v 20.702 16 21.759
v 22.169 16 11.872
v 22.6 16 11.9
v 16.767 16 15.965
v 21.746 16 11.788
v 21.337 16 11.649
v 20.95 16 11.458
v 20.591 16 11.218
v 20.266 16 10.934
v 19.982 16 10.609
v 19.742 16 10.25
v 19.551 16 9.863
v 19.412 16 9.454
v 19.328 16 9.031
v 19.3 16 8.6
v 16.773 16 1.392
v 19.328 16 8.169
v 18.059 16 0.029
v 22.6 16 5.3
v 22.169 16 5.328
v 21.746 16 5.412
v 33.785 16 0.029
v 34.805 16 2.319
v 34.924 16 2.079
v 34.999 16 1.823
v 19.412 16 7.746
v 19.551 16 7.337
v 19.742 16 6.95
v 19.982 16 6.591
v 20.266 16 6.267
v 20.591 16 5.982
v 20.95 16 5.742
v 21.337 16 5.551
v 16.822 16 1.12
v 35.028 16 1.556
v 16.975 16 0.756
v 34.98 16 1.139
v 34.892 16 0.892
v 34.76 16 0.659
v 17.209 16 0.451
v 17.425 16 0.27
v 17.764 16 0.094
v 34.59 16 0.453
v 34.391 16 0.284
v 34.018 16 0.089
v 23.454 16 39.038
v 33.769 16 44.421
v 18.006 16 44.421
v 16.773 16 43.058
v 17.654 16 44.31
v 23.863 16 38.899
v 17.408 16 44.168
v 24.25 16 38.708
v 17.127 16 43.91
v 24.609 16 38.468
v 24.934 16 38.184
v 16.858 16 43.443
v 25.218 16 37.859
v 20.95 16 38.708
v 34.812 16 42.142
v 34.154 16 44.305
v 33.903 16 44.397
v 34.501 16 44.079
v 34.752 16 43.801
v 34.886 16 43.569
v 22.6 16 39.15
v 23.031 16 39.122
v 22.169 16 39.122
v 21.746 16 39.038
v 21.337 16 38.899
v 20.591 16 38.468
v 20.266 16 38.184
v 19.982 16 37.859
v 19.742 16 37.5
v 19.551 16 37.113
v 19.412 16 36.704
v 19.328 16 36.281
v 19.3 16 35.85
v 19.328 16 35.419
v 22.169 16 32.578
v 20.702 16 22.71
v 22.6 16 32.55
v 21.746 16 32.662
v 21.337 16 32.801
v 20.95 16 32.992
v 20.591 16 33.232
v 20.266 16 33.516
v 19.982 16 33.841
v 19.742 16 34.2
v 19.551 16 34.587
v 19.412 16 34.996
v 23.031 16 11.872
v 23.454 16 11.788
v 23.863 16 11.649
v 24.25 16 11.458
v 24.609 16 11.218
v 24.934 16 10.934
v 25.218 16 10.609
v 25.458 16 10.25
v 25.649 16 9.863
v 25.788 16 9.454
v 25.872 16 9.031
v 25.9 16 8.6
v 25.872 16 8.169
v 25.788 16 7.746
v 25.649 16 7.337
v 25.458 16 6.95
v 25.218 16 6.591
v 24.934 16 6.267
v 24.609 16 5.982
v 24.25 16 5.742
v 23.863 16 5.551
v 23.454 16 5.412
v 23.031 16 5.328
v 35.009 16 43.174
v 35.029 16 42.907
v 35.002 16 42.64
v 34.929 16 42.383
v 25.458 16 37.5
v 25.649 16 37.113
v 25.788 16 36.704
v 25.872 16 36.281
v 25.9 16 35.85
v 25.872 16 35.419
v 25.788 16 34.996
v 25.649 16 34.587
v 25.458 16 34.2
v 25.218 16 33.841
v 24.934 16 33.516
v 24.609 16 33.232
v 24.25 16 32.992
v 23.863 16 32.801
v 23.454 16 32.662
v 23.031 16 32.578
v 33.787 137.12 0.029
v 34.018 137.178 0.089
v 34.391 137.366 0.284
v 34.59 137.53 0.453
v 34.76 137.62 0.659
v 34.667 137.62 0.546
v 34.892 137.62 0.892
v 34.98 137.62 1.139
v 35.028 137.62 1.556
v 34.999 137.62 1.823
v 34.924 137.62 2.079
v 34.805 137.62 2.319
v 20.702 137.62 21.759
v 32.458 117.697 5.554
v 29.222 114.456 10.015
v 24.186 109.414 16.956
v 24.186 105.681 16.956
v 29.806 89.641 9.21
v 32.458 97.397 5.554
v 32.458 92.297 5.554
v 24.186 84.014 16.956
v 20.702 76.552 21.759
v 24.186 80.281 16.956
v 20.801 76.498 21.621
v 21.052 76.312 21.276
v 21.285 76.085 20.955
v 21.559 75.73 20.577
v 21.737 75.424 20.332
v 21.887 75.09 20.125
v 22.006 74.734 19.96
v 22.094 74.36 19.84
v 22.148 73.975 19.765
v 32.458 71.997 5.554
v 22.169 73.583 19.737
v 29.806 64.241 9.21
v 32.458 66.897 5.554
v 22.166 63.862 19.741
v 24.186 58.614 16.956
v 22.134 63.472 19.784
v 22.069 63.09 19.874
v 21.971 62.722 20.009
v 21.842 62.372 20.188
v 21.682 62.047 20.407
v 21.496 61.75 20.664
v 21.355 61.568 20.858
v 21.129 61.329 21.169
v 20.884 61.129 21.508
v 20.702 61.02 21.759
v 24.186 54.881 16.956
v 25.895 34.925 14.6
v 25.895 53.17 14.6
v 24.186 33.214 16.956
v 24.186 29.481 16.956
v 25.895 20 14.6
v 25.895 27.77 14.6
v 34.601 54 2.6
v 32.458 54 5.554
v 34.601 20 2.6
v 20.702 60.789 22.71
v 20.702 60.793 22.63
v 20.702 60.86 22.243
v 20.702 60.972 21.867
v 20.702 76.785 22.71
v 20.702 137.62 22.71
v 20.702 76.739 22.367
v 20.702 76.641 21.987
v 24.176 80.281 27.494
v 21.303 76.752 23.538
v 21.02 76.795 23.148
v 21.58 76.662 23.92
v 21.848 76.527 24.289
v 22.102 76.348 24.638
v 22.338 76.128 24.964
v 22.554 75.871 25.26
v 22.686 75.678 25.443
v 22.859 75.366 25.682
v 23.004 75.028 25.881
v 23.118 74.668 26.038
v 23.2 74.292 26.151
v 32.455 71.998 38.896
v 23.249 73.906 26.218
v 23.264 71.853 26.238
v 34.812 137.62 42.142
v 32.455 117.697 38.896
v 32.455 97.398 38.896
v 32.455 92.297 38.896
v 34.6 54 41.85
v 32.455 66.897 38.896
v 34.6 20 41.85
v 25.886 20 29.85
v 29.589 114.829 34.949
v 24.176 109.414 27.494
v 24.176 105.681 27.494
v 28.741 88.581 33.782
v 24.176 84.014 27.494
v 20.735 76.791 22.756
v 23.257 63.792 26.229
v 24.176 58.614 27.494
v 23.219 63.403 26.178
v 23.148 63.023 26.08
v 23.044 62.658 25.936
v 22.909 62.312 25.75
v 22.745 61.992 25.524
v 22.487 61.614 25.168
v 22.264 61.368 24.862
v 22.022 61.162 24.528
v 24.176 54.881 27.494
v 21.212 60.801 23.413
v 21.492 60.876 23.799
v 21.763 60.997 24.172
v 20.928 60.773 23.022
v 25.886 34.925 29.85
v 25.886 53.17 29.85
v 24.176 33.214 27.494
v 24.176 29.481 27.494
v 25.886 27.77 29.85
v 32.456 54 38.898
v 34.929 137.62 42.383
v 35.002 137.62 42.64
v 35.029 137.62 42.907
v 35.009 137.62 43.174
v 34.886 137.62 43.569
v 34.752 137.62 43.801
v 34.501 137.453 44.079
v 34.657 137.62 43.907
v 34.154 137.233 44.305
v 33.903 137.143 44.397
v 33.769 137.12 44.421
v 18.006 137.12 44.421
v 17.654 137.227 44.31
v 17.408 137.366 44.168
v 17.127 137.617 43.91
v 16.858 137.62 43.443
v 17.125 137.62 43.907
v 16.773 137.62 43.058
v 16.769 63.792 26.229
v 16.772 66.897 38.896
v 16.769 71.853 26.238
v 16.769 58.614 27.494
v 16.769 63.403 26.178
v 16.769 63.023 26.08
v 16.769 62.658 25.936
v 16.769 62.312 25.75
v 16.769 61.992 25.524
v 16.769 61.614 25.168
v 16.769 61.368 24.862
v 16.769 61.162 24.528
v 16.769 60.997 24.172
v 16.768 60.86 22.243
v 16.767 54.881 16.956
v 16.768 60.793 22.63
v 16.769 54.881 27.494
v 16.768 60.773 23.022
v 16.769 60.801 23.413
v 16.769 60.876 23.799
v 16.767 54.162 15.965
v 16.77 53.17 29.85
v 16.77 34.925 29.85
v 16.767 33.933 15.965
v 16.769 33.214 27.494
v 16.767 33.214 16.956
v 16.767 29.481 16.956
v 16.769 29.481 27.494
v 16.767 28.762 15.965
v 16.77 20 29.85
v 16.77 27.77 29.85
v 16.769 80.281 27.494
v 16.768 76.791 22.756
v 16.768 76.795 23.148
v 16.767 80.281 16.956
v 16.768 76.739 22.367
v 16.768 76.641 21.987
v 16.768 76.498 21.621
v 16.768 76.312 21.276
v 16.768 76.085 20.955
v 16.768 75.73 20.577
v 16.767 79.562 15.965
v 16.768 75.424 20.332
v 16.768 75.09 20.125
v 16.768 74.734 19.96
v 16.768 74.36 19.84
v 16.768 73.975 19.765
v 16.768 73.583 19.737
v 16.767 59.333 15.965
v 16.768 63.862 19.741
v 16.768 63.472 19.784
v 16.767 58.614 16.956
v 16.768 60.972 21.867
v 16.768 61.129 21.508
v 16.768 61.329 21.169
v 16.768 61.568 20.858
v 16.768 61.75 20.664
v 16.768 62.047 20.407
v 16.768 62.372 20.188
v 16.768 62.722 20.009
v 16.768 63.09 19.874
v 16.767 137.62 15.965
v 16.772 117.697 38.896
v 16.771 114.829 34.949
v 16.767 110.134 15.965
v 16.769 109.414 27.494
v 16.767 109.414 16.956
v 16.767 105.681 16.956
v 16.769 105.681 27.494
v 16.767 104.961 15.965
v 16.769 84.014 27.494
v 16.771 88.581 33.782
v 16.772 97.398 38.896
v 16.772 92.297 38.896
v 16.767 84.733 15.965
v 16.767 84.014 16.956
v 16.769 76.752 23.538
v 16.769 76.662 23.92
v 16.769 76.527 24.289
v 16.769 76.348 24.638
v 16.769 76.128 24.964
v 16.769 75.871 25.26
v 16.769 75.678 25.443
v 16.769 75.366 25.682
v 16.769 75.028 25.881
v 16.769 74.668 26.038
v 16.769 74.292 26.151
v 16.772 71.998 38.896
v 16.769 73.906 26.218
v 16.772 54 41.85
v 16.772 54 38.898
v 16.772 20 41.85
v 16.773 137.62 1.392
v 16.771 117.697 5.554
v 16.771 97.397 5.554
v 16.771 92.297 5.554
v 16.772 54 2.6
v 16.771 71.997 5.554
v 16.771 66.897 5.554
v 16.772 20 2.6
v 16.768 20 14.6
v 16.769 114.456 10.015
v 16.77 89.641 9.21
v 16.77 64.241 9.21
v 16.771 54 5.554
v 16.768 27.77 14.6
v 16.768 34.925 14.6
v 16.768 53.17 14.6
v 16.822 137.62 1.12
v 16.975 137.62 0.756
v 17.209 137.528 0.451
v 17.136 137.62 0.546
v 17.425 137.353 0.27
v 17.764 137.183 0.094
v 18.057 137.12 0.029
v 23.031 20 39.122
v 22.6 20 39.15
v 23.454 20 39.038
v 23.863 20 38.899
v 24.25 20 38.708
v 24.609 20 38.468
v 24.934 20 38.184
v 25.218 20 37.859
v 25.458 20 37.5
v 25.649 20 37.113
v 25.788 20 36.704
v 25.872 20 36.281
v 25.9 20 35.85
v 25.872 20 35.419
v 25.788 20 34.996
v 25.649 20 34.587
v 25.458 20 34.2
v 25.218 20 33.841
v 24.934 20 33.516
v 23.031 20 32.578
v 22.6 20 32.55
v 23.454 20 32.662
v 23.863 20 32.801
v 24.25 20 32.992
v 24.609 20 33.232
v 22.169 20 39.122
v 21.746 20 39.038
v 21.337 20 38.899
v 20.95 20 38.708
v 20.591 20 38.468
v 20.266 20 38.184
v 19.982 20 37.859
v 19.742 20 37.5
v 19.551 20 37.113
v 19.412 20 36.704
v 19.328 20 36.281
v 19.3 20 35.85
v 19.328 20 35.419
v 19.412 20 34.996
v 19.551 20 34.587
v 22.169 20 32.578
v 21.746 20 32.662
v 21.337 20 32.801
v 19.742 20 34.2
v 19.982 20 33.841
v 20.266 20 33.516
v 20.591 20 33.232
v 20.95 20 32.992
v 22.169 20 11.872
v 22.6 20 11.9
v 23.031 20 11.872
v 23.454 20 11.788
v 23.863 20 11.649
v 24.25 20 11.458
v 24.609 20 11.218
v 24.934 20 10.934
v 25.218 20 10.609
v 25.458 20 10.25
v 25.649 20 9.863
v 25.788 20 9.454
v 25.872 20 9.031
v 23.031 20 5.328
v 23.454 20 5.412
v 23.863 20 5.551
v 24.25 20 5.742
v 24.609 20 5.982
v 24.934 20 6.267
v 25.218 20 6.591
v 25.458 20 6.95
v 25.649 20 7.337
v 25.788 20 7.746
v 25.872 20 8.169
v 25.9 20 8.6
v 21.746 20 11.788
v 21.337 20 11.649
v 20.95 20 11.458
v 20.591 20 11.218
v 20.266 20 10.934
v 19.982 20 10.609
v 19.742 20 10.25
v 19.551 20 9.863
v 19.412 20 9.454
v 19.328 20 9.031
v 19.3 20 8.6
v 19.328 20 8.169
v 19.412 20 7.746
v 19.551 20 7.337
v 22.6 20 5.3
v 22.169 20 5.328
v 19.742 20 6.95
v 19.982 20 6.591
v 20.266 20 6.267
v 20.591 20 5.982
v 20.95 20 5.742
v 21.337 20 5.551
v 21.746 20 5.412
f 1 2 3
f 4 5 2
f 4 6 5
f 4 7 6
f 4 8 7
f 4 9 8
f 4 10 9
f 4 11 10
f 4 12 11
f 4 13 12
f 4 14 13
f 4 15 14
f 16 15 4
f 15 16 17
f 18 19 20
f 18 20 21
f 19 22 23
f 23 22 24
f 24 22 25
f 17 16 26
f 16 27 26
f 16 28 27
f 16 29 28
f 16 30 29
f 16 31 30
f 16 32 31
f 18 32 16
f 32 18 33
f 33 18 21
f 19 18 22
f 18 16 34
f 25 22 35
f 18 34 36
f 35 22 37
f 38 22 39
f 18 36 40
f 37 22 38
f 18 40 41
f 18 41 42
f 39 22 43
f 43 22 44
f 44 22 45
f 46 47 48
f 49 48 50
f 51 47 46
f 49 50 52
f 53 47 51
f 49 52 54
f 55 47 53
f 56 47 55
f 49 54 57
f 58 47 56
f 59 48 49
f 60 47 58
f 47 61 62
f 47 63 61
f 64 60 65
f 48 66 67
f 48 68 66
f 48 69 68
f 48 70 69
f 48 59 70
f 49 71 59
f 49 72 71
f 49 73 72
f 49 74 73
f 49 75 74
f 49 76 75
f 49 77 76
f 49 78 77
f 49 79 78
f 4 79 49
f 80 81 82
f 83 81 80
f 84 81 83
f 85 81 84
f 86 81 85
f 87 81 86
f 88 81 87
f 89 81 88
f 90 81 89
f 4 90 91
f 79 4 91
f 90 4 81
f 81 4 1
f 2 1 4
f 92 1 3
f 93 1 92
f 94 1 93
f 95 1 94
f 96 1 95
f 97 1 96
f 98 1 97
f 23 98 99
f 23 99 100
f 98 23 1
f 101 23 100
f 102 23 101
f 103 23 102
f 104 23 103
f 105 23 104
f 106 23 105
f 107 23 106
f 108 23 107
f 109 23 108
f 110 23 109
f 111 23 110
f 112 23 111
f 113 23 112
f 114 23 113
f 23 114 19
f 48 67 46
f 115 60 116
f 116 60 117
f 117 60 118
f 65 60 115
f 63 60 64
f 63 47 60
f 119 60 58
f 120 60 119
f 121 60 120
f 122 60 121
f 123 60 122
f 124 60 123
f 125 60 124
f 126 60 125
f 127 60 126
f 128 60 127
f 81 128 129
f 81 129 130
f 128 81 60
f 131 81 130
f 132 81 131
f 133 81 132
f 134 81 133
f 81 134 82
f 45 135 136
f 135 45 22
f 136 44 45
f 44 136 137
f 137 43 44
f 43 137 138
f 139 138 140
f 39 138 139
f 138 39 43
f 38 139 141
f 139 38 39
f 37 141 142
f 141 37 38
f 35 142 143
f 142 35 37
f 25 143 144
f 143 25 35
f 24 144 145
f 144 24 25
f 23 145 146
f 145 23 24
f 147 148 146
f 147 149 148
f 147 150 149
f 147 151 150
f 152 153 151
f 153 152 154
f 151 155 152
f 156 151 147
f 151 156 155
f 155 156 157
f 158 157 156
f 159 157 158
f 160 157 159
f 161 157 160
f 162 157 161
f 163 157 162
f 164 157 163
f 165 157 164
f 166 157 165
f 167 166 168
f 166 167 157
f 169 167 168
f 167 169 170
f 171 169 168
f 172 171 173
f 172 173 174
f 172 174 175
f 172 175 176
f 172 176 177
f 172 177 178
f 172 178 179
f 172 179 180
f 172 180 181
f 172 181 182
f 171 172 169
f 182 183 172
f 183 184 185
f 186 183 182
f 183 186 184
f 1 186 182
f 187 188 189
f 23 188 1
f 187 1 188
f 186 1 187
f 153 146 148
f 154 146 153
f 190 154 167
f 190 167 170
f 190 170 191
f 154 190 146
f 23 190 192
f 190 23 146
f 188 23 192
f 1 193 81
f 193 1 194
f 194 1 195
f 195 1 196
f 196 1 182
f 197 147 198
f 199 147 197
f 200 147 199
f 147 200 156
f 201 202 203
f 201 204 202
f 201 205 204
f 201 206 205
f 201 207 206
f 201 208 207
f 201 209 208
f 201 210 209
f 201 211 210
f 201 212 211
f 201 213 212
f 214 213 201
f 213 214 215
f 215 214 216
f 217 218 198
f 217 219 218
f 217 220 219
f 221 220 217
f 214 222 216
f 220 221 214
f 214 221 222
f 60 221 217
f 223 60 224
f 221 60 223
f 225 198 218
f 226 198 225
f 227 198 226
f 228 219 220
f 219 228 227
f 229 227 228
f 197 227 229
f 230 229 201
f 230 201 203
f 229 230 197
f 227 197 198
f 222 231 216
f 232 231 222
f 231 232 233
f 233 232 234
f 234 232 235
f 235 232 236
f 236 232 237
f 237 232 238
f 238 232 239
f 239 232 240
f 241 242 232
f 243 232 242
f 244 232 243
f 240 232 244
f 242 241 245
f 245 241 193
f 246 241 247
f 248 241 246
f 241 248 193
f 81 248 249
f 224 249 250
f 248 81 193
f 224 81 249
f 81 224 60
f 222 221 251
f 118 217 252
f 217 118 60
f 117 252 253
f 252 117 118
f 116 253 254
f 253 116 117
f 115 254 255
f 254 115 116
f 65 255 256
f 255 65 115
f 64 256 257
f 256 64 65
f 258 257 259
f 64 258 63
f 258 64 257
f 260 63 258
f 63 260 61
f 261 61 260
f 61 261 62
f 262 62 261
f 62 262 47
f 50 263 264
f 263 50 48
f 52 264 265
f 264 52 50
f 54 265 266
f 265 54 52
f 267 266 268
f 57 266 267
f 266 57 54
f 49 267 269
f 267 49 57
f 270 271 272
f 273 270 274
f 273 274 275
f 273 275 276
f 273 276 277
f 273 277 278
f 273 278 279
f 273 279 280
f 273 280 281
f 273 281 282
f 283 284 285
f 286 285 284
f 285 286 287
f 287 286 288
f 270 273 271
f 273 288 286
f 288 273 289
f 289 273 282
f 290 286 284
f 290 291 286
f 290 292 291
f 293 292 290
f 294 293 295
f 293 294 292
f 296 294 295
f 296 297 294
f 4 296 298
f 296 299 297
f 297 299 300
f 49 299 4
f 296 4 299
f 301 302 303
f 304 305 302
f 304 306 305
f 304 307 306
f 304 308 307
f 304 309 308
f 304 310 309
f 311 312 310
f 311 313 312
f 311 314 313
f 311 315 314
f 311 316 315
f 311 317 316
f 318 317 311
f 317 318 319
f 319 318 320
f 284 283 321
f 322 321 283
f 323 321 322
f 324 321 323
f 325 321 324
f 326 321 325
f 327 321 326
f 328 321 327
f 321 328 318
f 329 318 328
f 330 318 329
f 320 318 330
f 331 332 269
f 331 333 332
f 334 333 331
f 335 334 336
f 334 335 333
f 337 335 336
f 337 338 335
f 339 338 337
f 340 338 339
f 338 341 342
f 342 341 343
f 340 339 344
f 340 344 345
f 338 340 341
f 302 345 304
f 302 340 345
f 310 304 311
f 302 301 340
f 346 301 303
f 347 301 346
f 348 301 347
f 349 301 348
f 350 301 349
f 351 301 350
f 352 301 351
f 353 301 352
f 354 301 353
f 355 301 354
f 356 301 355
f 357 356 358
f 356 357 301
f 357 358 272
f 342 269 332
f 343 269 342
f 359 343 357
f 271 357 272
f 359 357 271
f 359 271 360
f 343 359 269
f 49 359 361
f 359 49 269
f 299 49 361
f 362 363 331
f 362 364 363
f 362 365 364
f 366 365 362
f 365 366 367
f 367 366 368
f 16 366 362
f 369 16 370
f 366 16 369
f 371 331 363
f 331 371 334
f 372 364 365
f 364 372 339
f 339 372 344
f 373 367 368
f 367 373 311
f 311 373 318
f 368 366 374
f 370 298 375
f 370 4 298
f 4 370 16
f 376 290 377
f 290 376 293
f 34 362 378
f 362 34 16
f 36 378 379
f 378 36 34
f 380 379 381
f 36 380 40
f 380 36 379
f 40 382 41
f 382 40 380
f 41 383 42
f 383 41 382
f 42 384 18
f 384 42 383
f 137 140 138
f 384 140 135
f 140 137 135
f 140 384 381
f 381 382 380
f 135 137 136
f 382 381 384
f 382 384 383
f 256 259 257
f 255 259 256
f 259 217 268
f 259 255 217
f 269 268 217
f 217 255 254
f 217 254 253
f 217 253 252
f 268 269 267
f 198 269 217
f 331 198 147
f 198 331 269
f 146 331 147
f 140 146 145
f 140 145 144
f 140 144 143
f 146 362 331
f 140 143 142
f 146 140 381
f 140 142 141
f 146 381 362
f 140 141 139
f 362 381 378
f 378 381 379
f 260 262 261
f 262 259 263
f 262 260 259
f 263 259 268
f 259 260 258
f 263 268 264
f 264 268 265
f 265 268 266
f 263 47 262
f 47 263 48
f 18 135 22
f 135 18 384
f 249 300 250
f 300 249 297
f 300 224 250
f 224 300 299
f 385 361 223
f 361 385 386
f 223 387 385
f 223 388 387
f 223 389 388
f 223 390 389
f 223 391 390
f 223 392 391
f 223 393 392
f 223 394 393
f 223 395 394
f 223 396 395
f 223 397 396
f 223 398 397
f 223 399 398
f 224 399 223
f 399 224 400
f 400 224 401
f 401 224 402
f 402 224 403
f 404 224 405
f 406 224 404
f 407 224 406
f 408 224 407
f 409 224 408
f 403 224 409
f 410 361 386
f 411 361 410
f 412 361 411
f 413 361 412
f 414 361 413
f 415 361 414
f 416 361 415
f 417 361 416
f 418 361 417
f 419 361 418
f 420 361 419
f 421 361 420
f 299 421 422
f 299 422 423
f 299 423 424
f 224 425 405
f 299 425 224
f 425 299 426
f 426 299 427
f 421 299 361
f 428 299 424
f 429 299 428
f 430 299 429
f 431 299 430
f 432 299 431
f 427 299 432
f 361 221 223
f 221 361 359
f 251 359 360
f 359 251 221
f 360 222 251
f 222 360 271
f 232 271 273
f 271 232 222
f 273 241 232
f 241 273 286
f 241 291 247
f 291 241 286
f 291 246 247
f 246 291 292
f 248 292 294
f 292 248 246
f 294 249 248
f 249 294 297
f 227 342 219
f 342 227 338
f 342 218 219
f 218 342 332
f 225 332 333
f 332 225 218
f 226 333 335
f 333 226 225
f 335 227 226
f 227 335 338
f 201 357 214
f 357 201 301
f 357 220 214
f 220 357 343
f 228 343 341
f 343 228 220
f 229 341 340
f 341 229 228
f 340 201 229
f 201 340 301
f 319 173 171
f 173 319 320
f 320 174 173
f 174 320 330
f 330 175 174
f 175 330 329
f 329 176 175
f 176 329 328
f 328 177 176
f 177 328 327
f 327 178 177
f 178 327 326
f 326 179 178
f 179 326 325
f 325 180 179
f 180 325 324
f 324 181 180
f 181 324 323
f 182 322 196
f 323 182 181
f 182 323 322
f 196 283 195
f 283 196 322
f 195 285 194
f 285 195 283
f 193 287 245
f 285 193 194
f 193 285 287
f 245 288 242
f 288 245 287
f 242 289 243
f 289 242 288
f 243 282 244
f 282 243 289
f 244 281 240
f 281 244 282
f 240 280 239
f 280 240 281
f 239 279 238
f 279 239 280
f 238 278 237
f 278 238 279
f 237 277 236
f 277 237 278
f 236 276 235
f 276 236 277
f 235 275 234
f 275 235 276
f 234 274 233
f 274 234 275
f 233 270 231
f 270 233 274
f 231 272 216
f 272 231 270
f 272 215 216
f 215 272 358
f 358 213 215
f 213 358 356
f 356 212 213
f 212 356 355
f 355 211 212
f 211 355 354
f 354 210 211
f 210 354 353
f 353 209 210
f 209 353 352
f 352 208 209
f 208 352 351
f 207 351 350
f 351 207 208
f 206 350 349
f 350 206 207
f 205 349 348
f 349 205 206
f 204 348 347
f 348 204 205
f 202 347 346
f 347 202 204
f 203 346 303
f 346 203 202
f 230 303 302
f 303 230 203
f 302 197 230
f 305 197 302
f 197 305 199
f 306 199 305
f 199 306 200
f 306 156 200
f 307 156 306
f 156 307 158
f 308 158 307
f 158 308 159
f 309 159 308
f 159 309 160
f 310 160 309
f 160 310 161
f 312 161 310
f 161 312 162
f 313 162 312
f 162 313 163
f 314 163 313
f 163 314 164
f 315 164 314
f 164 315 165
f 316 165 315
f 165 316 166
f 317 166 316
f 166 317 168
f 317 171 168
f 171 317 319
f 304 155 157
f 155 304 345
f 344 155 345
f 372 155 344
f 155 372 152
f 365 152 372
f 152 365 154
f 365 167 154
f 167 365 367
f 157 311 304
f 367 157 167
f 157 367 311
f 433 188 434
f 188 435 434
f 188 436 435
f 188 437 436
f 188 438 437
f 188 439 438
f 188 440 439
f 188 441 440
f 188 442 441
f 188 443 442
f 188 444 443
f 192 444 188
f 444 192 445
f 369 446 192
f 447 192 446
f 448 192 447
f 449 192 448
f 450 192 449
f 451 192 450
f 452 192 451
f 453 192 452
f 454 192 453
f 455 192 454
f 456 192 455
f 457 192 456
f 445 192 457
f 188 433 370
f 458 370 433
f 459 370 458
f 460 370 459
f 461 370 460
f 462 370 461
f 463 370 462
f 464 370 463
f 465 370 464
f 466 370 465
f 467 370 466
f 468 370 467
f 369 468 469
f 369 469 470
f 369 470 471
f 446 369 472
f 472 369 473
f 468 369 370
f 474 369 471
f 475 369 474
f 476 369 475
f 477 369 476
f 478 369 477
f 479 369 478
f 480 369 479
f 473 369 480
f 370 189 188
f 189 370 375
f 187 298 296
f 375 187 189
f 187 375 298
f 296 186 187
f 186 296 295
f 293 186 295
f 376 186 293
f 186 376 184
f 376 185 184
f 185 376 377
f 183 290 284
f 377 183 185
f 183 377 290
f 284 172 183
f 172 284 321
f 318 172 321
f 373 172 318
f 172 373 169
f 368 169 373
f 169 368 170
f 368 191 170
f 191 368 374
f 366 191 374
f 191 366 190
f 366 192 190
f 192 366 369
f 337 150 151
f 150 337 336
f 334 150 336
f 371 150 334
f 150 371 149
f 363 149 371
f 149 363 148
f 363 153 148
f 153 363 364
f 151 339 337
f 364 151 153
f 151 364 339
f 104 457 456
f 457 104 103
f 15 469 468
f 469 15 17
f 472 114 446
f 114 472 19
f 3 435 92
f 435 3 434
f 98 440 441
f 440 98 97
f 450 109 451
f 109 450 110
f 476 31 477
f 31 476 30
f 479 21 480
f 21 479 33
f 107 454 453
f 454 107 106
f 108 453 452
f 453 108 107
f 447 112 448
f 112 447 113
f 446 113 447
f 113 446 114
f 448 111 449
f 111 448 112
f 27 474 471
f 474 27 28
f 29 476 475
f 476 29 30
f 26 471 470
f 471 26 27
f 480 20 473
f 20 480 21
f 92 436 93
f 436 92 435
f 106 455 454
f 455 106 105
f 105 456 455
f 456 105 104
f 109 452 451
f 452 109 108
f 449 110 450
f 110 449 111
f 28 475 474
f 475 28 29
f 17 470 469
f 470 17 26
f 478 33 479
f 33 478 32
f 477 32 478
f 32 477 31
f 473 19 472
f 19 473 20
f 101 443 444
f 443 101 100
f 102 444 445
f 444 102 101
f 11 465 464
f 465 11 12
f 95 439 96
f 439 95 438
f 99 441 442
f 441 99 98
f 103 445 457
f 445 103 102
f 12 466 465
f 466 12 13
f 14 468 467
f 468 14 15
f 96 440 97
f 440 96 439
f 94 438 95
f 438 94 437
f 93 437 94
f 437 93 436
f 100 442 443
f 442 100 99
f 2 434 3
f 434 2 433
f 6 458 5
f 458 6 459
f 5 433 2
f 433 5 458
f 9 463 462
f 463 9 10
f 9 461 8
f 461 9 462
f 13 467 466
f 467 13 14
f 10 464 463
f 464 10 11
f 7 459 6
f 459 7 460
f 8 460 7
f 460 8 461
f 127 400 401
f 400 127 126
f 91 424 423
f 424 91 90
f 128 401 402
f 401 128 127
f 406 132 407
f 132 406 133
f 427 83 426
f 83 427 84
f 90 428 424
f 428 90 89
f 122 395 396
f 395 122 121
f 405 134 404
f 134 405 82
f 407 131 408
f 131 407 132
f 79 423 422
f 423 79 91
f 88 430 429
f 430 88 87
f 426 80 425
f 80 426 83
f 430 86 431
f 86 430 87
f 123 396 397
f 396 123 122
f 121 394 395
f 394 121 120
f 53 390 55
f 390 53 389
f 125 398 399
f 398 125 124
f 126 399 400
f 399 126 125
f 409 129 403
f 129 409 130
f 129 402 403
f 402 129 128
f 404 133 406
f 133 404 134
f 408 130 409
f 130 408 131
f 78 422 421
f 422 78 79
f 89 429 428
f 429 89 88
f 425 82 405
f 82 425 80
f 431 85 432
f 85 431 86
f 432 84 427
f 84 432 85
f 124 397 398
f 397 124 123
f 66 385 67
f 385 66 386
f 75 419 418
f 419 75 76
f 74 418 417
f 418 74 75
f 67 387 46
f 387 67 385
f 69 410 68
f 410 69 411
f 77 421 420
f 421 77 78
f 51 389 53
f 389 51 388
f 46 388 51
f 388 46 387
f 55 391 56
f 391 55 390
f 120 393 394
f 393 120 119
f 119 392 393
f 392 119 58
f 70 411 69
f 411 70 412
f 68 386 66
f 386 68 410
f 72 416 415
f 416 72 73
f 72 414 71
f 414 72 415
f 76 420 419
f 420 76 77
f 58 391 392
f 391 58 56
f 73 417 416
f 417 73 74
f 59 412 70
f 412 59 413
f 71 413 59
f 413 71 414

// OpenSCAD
difference(){intersection(){translate([0,137.62,0])rotate([90,0,0])linear_extrude(121.62)polygon(points=[[17.12697, 43.90957], [17.40832, 44.16787], [17.65444, 44.31044], [18.01977, 44.42546], [18.15991, 44.44434], [19.5559, 44.45], [33.6393, 44.4441], [33.9029, 44.3972], [34.1543, 44.305], [34.50131, 44.07889], [34.75242, 43.80117], [34.88633, 43.56942], [35.0091, 43.1739], [35.0293, 42.9068], [35.0024, 42.6404], [34.9293, 42.3828], [34.8123, 42.142], [20.7017, 22.7104], [20.7017, 21.75876], [34.80491, 2.31917], [34.92399, 2.07945], [34.99931, 1.82259], [35.02854, 1.55651], [34.97969, 1.13856], [34.8924, 0.89249], [34.7605, 0.65948], [34.5898, 0.45316], [34.39098, 0.28388], [34.01785, 0.08931], [33.75884, 0.02176], [33.5054, 0.0], [18.16299, 0.00548], [17.76367, 0.09431], [17.42509, 0.2703], [17.20882, 0.45117], [16.97472, 0.75625], [16.82188, 1.11978], [16.77274, 1.3919], [16.767, 15.96516], [16.77274, 43.05807], [16.85754, 43.44321]],paths=[[0, 1, 2, 3, 4, 5, 6, 7, 8, 9, 10, 11, 12, 13, 14, 15, 16, 17, 18, 19, 20, 21, 22, 23, 24, 25, 26, 27, 28, 29, 30, 31, 32, 33, 34, 35, 36, 37, 38, 39, 40]]);
translate([0,0,0])rotate([90,0,90])linear_extrude(254)polygon(points=[[80.2811, 16.9556], [84.0135, 16.9556], [89.64134, 9.20954], [92.29705, 5.55419], [71.99745, 5.55416], [54.0, 41.85], [20.0, 41.85], [20.0, 29.85], [27.7697, 29.85], [29.4811, 27.4944], [33.2135, 27.4944], [34.9249, 29.85], [53.1697, 29.85], [54.8811, 27.4944], [58.6135, 27.4944], [66.89715, 38.89585], [54.0, 38.89782], [54.0, 39.10393], [63.08996, 19.87362], [63.47205, 19.78383], [63.86214, 19.74065], [73.58344, 19.73685], [73.97495, 19.76477], [74.36026, 19.83968], [74.73369, 19.96047], [75.08986, 20.12538], [75.42356, 20.33202], [75.72985, 20.57738], [76.08543, 20.95506], [76.31183, 21.27565], [76.49799, 21.62127], [76.64109, 21.98675], [76.73907, 22.36681], [76.79063, 22.75588], [76.79485, 23.14836], [76.75167, 23.53845], [76.66188, 23.92054], [76.52667, 24.28901], [76.34798, 24.63854], [76.12852, 24.96394], [75.87138, 25.26045], [75.67756, 25.44297], [75.36605, 25.68167], [75.02797, 25.88111], [74.66835, 26.03831], [74.29241, 26.15103], [73.90558, 26.21767], [71.85305, 26.2382], [63.79238, 26.22913], [63.40331, 26.17757], [63.02325, 26.07959], [62.65777, 25.93649], [62.31215, 25.75033], [61.99156, 25.52393], [61.61388, 25.16835], [61.36852, 24.86206], [61.16188, 24.52836], [60.99697, 24.17219], [60.87618, 23.79876], [60.80127, 23.41345], [60.77335, 23.02194], [60.79283, 22.62992], [60.85947, 22.24309], [60.97219, 21.86715], [61.12939, 21.50753], [61.32883, 21.16945], [61.56753, 20.85794], [61.75005, 20.66412], [62.04656, 20.40698], [62.37196, 20.18752], [62.72149, 20.00883], [29.4811, 16.9556], [29.8052, 16.9556], [33.2135, 16.9556], [33.39359, 16.70772], [34.9249, 14.6], [35.66252, 14.6], [53.1697, 14.6], [54.8811, 16.9556], [58.6135, 16.9556], [64.24134, 9.20954], [66.89705, 5.55419], [54.0, 5.55422], [54.0, 2.6], [20.0, 2.6], [20.0, 13.50958], [20.0, 14.6], [27.7697, 14.6], [16.0, 44.42095], [137.12, 44.42096], [137.62, 43.9067], [137.62, 0.54609], [137.12, 0.02901], [16.0, 0.02866], [97.39747, 38.89585], [98.87156, 36.86693], [105.681, 27.4944], [109.414, 27.4944], [114.8295, 34.94879], [117.69693, 38.89585], [80.2811, 27.4944], [83.6894, 27.4944], [84.0135, 27.4944], [88.58143, 33.78163], [92.29706, 38.89585], [71.99747, 38.89585], [75.23856, 34.43488], [117.69668, 5.55419], [97.39745, 5.55416], [105.681, 16.9556], [109.414, 16.9556], [114.4563, 10.01514]],paths=[[0, 1, 2, 3, 4], [5, 6, 7, 8, 9, 10, 11, 12, 13, 14, 15, 16, 17], [18, 19, 20, 21, 22, 23, 24, 25, 26, 27, 28, 29, 30, 31, 32, 33, 34, 35, 36, 37, 38, 39, 40, 41, 42, 43, 44, 45, 46, 47, 48, 49, 50, 51, 52, 53, 54, 55, 56, 57, 58, 59, 60, 61, 62, 63, 64, 65, 66, 67, 68, 69, 70], [71, 72, 73, 74, 75, 76, 77, 78, 79, 80, 81, 82, 83, 84, 85, 86, 87], [88, 89, 90, 91, 92, 93], [94, 95, 96, 97, 98, 99], [100, 101, 102, 103, 104, 105, 106], [107, 108, 109, 110, 111]]);}
for(z=[8.6,35.85])translate([22.6,15,z])rotate([-90,0,0])cylinder(d=6.6,h=5.5,$fn=48);}
